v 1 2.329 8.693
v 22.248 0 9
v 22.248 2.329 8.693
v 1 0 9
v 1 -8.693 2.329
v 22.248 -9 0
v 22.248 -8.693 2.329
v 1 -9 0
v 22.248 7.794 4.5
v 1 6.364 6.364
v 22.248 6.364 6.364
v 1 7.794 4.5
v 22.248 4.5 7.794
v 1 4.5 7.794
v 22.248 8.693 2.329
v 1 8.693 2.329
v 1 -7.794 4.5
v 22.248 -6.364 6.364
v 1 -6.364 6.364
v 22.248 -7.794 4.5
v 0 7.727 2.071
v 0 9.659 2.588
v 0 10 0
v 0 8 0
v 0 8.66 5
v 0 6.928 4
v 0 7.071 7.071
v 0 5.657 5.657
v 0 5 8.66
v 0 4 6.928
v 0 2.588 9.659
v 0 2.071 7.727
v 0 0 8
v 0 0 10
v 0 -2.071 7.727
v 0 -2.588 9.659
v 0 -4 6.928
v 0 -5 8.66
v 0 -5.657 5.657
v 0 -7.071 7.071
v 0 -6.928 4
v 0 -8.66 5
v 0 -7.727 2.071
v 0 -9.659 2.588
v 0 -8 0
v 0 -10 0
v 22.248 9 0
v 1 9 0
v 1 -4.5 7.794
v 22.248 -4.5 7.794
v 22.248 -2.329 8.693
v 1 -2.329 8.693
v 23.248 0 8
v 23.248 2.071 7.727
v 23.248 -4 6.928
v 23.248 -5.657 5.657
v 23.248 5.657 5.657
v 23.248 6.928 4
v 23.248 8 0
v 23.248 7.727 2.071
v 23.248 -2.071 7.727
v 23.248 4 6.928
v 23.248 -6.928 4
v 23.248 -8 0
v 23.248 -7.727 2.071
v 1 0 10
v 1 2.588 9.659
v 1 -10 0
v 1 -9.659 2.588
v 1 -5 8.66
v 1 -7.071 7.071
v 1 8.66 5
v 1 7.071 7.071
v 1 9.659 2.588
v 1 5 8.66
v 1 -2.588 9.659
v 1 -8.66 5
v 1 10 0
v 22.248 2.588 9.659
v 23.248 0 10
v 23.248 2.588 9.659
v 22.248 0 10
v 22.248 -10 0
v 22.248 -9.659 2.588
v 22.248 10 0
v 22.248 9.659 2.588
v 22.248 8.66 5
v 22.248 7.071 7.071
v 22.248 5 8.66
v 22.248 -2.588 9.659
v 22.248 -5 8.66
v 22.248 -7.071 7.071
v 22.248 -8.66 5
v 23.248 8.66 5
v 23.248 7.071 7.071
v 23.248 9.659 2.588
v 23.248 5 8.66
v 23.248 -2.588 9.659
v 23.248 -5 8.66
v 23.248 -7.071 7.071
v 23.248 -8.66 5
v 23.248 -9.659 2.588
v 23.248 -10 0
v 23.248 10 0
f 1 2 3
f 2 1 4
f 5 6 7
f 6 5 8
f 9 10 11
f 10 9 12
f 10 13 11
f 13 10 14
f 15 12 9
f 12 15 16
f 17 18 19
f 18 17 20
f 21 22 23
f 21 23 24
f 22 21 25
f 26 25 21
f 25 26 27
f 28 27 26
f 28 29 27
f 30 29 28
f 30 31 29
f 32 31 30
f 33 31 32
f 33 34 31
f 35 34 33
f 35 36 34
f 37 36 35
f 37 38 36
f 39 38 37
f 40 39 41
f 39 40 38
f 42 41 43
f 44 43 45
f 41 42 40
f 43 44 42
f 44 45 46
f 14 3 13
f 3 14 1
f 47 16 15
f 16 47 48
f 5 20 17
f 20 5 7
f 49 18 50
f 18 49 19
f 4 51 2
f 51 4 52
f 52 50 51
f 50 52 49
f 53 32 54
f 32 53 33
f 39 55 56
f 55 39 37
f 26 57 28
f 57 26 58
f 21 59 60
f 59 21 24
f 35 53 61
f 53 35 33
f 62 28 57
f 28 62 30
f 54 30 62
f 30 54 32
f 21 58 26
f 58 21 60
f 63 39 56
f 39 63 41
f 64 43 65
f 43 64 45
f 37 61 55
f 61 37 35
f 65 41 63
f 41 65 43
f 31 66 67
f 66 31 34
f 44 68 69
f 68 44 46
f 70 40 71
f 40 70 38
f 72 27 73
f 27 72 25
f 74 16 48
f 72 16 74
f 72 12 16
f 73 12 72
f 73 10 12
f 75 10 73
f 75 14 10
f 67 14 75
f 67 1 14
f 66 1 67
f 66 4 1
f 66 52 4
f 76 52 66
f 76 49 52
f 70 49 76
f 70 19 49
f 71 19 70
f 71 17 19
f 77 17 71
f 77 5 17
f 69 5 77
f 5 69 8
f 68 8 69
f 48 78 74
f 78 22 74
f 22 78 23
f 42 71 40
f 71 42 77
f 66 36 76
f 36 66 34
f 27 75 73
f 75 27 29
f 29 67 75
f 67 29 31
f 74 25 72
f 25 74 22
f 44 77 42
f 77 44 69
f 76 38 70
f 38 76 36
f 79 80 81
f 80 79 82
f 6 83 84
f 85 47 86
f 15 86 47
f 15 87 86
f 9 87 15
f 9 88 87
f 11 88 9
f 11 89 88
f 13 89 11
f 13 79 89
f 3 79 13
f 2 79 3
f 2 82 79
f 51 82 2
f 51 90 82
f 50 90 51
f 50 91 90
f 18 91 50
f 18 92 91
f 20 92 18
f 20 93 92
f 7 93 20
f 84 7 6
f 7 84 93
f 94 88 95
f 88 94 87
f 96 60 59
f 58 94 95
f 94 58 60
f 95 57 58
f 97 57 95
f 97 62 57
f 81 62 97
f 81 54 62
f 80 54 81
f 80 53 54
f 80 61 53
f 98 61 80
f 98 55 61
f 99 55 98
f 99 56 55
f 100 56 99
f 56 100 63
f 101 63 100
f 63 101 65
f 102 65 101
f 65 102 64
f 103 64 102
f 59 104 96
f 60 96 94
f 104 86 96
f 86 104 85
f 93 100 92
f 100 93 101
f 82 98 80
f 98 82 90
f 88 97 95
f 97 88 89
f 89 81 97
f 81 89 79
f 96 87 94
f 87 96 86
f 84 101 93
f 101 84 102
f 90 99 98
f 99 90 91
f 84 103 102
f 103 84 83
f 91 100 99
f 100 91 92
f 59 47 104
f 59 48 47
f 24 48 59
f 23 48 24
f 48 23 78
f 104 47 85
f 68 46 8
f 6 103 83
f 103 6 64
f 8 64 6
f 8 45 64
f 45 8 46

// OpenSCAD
// file: ../build_environments.scad
// build_environments.scad: modules to build level sections
//

module pool(diameter=10.0, wall_height=2.0, step_width=3.0, connections=[])
{
    difference() {
        union() {
        difference() {
            cylinder(h=0.5,r1=diameter+step_width,r2=diameter+step_width,$fn=48);
            translate([0,0,-0.1])
                cylinder(h=0.7,r1=diameter,r2=diameter,$fn=48);
        }
        difference() {
            cylinder(h=wall_height,r1=diameter+step_width+1.0,r2=diameter+step_width+1.0,$fn=48);
            translate([0,0,-0.1])
                cylinder(h=wall_height+0.2,r1=diameter+step_width,r2=diameter+step_width,$fn=48);
        }
        }
    
        for (c = connections)
        {
            rotate([0,90,0]) {
                angle = atan2(c[1],c[0]);
                rotate([-angle,0,0]) {
                    cylinder(h=diameter+5.0,r1=c[2],r2=c[2],$fn=48);
                }
            }
        }
    }
}

module straight(length=10.0, width=2.0, dy1=0.0, dy2=0.0, dz=0.0)
{
    dims = [0, 0, 0, 0, 0, (dz/length)];
    matrix = [
        [ 1, dims[0], dims[1], 0 ],
        [ dims[2], 1, dims[4], 0 ],
        [ dims[5], dims[3], 1, 0 ],
        [ 0, 0, 0, 1 ]
    ];
    multmatrix(matrix)
    difference() {
        translate([dy1,0,0])
        union() {
            rotate([0,90,0]) {
                difference() {
                    cylinder(h=(length-dy1-dy2),r1=width+1.0,r2=width+1.0,$fn=24);
                    translate([0,0,-0.1])
                        cylinder(h=(length-dy1-dy2+0.2),r1=width,r2=width,$fn=24);
                }
                difference() {
                    cylinder(h=1.0,r1=width+2.0,r2=width+2.0,$fn=24);
                    translate([0,0,-0.1])
                        cylinder(h=1.2,r1=width,r2=width,$fn=24);
                }
                translate([0,0,(length-dy1-dy2)-1.0]) {
                    difference() {
                        cylinder(h=1.0,r1=width+2.0,r2=width+2.0,$fn=24);
                        translate([0,0,-0.1])
                            cylinder(h=1.2,r1=width,r2=width,$fn=24);
                    }
                }
            }
        }
        translate([0,0,-(2*width+4.0)/2])
            cube([3*length,3*length,2*width+4.0],center=true);
    }
}

module curve(p0=[0,0], center=[0,0], dir=1, angle=0.0, width=2.0)
{
    radius = sqrt((p0[0]-center[0])*(p0[0]-center[0]) + (p0[1]-center[1])*(p0[1]-center[1]));
    if (dir == 0) {
        difference() {
            rotate([0,0,-90])
            difference() {
                rotate_extrude(angle = angle, convexity = 10, $fn=32)
                    translate([radius, 0, 0])
                        circle(r = width+1.0,$fn=24);
                rotate([0,0,-1.0])
                    rotate_extrude(angle = angle+2.0, convexity = 10, $fn=32)
                        translate([radius, 0, 0])
                            circle(r = width,$fn=24);
            }
            translate([0,0,-(2*width+4.0)/2])
                cube([5*radius,5*radius,2*width+4.0],center=true);
        }
    }
    else {
        difference() {
            rotate([0,0,90])
            difference() {
                rotate_extrude(angle = -angle, convexity = 10, $fn=32)
                    translate([radius, 0, 0])
                        circle(r = width+1.0,$fn=24);
                rotate([0,0,1.0])
                    rotate_extrude(angle = -angle-2.0, convexity = 10, $fn=32)
                        translate([radius, 0, 0])
                            circle(r = width,$fn=24);
            }
            translate([0,0,-(2*width+4.0)/2])
                cube([5*radius,5*radius,2*width+4.0],center=true);
        }
    }

}

// test pool
//pool(diameter=12.0000, wall_height=3.0000, step_width=3.0000, connections=[[0.0000,-26.0000,2.0000], [23.6074,0.0000,2.0000]]);

// test straight, slope
//straight(length=26.0000, width=2.0000, dy1=11.8322, dy2=6.7082, dz=0.0000);
//straight(length=29.1549, width=12.0000, dy1=0.0000, dy2=0.0000, dz=-15.0000);

// test curve
//curve(p0=[23.6074, 0.0000], center=[23.6074, 5.0000], dir=0, angle=60.1011, width=2.0000);
//curve(p0=[33.6426, 12.4219], center=[37.9771, 9.9295], dir=1, angle=120.4627, width=2.0000);
// main file
use <../build_environments.scad>;
straight(length=23.2479, width=8.0000, dy1=0.0000, dy2=0.0000, dz=0.0000);
